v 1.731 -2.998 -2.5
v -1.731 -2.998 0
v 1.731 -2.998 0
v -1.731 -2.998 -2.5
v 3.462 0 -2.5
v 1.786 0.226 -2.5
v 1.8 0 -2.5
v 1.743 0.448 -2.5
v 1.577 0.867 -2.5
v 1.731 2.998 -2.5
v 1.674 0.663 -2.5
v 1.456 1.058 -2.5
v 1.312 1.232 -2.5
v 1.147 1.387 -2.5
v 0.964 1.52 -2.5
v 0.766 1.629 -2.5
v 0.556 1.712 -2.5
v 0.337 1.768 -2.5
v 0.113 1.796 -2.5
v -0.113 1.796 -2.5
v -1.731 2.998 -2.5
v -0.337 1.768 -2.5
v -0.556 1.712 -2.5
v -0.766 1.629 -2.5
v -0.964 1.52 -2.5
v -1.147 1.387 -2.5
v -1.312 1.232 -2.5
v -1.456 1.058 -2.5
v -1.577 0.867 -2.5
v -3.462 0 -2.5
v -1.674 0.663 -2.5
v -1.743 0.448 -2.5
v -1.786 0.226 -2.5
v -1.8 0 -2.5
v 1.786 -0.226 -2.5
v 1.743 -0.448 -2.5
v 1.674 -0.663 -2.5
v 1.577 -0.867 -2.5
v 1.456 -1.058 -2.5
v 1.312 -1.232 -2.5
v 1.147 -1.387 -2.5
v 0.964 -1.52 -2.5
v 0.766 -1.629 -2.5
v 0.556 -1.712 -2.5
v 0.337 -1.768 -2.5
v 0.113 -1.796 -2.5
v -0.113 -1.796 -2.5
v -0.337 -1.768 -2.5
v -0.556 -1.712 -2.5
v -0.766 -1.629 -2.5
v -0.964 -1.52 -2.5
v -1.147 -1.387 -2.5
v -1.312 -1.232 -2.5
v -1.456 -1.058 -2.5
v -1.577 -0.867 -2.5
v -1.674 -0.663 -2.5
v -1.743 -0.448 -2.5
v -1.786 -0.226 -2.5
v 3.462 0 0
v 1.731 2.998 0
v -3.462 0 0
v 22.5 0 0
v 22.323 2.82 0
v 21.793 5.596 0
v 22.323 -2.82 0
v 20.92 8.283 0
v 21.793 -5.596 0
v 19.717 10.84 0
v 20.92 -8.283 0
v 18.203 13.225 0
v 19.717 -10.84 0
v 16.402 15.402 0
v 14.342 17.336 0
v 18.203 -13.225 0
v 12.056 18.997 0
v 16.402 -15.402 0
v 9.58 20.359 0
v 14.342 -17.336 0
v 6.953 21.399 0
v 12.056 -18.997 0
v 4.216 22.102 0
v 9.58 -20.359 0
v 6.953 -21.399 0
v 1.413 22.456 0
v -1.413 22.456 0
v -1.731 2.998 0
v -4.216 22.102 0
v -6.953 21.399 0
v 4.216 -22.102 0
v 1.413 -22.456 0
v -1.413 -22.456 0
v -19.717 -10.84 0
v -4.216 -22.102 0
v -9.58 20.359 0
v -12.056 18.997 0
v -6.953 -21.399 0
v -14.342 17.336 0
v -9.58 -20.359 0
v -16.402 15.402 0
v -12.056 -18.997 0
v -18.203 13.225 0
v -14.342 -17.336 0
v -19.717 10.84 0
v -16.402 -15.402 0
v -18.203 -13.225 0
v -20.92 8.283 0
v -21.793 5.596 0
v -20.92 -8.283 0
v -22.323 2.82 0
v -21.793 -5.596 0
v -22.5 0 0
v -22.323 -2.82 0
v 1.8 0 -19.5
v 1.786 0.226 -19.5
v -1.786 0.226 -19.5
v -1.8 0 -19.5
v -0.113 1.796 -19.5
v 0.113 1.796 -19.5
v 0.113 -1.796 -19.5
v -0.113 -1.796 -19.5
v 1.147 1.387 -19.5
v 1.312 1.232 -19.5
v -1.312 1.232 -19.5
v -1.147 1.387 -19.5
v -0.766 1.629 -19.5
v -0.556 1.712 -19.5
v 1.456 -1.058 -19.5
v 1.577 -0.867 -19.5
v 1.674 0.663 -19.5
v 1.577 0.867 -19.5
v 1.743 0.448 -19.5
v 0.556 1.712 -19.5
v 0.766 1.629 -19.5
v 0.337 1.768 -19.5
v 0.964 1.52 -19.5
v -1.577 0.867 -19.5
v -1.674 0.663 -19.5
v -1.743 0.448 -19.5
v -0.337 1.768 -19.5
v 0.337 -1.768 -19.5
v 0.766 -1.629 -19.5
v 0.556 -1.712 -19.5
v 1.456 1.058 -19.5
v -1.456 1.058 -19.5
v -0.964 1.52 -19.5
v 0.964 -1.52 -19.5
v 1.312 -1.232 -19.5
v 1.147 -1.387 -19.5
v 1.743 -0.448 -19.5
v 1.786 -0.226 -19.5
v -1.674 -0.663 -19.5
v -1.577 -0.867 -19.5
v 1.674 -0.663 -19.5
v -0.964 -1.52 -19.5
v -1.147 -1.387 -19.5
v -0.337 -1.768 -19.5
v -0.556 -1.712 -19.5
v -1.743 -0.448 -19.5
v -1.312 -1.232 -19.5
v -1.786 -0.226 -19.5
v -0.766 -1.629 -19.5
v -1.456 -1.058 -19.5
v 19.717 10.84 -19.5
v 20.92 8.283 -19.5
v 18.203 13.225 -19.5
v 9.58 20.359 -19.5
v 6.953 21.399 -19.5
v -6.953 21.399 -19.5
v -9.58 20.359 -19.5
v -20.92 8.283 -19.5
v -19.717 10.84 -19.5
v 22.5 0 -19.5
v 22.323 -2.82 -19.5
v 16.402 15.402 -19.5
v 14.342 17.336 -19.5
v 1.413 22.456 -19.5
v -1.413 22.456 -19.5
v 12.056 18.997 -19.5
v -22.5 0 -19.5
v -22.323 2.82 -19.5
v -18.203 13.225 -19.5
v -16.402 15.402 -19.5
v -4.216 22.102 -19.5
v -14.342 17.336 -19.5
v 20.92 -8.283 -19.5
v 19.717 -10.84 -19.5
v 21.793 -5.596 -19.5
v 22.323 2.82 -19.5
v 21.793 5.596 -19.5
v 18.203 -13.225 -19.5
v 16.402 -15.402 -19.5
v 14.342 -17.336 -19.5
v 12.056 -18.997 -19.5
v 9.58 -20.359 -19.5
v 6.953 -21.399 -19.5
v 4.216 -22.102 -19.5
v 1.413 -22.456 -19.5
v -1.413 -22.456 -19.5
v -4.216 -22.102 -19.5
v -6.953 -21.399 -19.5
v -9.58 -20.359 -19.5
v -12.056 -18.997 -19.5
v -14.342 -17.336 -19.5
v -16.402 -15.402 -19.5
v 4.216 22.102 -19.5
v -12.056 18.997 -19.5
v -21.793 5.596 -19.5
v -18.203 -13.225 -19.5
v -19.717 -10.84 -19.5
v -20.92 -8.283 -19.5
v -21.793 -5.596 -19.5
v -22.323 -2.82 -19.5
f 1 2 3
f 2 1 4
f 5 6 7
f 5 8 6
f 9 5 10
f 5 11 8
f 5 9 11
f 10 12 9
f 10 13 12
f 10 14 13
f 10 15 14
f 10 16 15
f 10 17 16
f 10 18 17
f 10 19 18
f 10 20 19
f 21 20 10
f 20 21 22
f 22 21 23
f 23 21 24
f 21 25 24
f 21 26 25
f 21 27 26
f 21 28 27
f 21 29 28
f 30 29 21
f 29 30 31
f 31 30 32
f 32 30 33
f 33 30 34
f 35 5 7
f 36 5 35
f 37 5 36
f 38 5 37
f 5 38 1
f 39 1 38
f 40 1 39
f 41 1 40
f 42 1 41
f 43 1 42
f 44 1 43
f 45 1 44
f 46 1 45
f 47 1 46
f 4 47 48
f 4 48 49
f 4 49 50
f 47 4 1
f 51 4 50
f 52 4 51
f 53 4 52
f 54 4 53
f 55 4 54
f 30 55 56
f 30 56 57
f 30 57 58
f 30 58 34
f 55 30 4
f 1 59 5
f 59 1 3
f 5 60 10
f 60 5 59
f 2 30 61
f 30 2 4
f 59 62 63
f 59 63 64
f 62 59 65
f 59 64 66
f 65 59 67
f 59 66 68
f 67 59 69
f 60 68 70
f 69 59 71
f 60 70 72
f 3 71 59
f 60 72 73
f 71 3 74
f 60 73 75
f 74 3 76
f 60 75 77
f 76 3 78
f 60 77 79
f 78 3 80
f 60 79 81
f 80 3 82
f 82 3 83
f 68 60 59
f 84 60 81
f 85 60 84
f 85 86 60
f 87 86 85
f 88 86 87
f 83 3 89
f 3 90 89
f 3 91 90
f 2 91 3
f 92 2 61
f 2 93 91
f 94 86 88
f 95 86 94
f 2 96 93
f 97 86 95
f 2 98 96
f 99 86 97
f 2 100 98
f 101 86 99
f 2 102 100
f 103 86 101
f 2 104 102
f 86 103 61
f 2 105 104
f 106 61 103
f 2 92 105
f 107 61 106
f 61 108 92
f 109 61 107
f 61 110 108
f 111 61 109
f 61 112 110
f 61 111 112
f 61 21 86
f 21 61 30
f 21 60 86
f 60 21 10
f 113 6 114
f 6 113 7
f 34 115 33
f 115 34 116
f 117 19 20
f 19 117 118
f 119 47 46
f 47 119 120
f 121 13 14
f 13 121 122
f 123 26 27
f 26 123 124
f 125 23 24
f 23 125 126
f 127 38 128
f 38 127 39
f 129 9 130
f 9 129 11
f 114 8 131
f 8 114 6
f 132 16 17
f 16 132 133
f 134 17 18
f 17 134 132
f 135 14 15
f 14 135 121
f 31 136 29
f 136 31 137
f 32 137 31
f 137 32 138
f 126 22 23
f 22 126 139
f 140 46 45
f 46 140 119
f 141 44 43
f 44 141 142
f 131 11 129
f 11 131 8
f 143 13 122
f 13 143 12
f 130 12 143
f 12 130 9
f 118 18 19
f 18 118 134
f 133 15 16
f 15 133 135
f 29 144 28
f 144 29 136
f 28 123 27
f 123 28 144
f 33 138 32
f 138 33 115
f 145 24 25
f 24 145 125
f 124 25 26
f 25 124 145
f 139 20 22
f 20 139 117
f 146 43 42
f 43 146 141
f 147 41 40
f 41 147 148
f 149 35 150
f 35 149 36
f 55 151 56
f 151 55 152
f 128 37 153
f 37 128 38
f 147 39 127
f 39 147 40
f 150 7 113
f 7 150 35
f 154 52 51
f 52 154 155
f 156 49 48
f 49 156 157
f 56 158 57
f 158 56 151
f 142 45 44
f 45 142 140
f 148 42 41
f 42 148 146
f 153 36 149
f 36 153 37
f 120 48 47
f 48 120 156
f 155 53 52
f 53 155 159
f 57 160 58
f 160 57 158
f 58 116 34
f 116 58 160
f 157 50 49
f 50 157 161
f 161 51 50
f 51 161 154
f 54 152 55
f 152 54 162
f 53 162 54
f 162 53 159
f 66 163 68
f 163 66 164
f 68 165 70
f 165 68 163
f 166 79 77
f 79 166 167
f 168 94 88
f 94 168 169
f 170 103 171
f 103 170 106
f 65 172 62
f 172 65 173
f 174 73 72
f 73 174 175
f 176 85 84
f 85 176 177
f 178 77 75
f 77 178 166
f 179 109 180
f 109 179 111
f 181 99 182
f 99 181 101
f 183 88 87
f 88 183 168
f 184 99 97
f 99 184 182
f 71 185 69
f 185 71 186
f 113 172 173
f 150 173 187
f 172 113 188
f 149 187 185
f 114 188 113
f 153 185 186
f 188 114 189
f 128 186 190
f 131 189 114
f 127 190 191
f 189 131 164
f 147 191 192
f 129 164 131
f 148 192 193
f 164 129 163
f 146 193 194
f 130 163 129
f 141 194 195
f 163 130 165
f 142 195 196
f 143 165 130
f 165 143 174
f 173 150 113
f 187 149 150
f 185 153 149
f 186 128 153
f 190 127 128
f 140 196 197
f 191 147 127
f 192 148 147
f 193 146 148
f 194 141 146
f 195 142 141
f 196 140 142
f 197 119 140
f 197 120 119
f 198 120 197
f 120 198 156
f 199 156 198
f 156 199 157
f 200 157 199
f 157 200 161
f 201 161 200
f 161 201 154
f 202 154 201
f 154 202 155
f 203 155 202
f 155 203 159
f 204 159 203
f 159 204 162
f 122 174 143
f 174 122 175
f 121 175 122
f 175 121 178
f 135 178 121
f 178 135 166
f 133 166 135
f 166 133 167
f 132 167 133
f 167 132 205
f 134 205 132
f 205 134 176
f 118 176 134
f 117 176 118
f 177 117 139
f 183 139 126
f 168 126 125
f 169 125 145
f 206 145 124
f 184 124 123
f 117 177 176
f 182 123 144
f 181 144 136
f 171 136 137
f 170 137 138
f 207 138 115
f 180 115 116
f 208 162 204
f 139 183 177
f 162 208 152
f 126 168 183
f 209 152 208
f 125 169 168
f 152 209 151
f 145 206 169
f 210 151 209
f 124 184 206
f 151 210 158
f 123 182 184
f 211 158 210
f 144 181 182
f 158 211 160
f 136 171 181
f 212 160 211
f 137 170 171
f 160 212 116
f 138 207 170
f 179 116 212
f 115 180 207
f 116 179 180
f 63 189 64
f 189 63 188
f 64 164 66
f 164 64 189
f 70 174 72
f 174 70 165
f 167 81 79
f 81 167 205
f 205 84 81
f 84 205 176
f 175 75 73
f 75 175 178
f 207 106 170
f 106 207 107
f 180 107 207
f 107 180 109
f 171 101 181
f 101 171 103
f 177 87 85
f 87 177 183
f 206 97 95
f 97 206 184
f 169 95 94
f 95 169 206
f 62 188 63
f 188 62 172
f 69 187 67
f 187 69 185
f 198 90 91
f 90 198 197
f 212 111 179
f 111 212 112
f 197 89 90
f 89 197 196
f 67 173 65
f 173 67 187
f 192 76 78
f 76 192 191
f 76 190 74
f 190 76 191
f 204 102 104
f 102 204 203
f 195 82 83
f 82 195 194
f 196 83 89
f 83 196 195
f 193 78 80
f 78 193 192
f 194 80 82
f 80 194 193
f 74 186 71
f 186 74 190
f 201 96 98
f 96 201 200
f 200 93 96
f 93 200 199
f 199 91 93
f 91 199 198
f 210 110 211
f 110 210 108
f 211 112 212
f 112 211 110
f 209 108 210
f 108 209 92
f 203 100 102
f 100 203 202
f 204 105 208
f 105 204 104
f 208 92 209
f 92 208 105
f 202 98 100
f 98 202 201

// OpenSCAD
$fn = 50;


difference() {
	union() {
		translate(v = [0, 0, -19.5000000000]) {
			cylinder(h = 19.5000000000, r = 22.5000000000);
		}
	}
	union() {
		translate(v = [0, 0, 0]) {
			rotate(a = [0, 0, 0]) {
				difference() {
					union() {
						translate(v = [0, 0, -2.5000000000]) {
							linear_extrude(height = 2.5000000000) {
								polygon(points = [[3.4620000000, 0.0000000000], [1.7310000000, 2.9981799479], [-1.7310000000, 2.9981799479], [-3.4620000000, 0.0000000000], [-1.7310000000, -2.9981799479], [1.7310000000, -2.9981799479]]);
							}
						}
					}
					union();
				}
			}
		}
		#translate(v = [0, 0, -100.0000000000]) {
			cylinder(h = 200, r = 1.8000000000);
		}
	}
}
